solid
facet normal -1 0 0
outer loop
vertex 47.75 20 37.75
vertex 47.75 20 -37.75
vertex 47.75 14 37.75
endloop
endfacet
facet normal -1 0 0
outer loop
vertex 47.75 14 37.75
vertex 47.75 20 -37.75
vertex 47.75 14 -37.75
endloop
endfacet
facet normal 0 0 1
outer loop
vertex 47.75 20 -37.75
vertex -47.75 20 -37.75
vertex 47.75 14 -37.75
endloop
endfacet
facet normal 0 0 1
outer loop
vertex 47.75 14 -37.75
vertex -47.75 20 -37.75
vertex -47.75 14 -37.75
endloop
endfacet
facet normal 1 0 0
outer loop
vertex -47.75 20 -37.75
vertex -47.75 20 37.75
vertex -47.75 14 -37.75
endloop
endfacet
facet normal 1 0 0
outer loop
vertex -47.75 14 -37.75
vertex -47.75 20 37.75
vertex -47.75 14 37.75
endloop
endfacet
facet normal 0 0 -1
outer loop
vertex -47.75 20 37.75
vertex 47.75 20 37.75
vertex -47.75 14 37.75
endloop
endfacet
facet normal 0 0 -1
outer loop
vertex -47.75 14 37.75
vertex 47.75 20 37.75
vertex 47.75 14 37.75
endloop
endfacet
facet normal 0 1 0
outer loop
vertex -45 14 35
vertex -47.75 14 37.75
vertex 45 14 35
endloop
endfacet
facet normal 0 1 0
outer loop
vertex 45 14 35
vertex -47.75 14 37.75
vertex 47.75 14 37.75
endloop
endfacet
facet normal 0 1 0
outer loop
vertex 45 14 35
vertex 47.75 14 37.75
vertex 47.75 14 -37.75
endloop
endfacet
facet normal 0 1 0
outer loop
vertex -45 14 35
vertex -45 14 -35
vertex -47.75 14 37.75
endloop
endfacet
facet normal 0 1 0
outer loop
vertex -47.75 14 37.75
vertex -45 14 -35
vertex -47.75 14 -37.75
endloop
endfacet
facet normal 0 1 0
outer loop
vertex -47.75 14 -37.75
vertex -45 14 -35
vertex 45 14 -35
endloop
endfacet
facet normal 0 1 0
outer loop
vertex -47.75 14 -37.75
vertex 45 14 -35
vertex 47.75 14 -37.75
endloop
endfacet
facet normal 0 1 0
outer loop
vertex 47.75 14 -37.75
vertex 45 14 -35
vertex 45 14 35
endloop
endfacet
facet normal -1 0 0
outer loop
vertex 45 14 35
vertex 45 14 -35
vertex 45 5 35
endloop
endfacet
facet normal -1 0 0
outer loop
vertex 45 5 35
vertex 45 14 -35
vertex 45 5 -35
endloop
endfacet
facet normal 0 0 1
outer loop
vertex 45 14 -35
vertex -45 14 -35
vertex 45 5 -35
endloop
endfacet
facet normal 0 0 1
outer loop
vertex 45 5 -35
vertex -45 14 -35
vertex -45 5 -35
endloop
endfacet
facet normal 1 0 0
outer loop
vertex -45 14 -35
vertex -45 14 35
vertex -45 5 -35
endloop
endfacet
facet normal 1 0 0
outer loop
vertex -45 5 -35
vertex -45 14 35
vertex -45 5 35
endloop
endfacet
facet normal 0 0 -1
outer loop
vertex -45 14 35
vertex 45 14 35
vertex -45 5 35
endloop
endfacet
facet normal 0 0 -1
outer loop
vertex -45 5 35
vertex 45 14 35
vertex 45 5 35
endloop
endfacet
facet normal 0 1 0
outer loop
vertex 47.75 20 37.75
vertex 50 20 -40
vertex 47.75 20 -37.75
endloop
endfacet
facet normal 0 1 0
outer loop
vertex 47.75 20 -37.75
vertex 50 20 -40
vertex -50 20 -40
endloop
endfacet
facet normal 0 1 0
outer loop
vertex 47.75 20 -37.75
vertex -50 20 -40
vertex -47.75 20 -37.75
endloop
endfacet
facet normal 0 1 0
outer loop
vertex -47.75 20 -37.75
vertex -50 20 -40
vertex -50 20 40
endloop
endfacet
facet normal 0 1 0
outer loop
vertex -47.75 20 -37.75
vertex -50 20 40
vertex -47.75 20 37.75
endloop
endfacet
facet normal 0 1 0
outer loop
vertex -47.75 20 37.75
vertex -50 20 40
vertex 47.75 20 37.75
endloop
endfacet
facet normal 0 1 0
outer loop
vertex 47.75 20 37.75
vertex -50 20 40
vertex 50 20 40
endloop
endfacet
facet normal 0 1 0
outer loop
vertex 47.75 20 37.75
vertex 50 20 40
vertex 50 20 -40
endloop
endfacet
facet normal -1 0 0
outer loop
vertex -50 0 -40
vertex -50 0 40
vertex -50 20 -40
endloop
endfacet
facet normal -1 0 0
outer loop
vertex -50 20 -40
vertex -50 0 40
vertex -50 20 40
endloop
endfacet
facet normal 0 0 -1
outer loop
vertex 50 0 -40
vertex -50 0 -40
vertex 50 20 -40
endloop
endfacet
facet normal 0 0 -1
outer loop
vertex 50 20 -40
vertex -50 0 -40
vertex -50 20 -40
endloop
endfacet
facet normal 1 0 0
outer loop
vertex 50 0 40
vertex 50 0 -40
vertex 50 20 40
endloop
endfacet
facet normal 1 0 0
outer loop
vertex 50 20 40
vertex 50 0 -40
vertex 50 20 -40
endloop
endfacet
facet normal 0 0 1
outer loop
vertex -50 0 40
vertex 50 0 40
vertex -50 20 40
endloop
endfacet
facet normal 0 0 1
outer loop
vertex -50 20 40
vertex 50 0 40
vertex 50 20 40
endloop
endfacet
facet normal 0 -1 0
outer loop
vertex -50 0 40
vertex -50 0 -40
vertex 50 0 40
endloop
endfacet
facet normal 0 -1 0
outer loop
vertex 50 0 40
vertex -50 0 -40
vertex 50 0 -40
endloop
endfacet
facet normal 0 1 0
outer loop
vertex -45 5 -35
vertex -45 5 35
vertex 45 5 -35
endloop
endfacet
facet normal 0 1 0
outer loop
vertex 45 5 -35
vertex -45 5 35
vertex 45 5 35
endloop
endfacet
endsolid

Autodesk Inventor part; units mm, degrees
ref_plane "YZ Plane" through (0, 0, 0) normal (1, 0, 0) x (0, 1, 0)
ref_plane "XZ Plane" through (0, 0, 0) normal (0, 1, 0) x (-1, 0, 0)
ref_plane "XY Plane" through (0, 0, 0) normal (0, 0, 1) x (1, 0, 0)
sketch "Skizze1" plane through (0, 0, 0) normal (0, 1, 0) x (-1, 0, 0)
  line L0 (-50, 40) -> (50, 40)
  line L1 (50, 40) -> (50, -40)
  line L2 (50, -40) -> (-50, -40)
  line L3 (-50, -40) -> (-50, 40)
  line L4 (-50, 40) -> (50, -40) construction
  line L5 (50, 40) -> (-50, -40) construction
  point P0 (0, 0)
  dimension "d0" = 100
  dimension "d1" = 80
extrude "Extrusion1" add sketch "Skizze1" along normal blind 5
sketch "Skizze2" plane through (0, 5, 0) normal (0, 1, 0) x (1, 0, 0)
  line L0 (-50, -40) -> (50, -40) projected
  line L1 (50, -40) -> (50, 40) projected
  line L2 (50, 40) -> (-50, 40) projected
  line L3 (-50, 40) -> (-50, -40) projected
  line L4 (-45, -35) -> (45, -35)
  line L5 (45, -35) -> (45, 35)
  line L6 (45, 35) -> (-45, 35)
  line L7 (-45, 35) -> (-45, -35)
  line L8 (-45, -35) -> (45, 35) construction
  line L9 (45, -35) -> (-45, 35) construction
  point P0 (0, 0)
  dimension "d4" = 90
  dimension "d5" = 70
extrude "Extrusion2" add sketch "Skizze2" along normal blind 15
sketch "Skizze3" plane through (0, 20, 0) normal (0, 1, 0) x (1, 0, 0)
  line L0 (47.75, -37.75) -> (-47.75, -37.75)
  line L1 (-47.75, -37.75) -> (-47.75, 37.75)
  line L2 (-47.75, 37.75) -> (47.75, 37.75)
  line L3 (47.75, 37.75) -> (47.75, -37.75)
  line L4 (47.75, -37.75) -> (-47.75, 37.75) construction
  line L5 (-47.75, -37.75) -> (47.75, 37.75) construction
  line L6 (-45, 35) -> (-45, -35) projected
  line L7 (-45, -35) -> (45, -35) projected
  line L8 (45, -35) -> (45, 35) projected
  line L9 (45, 35) -> (-45, 35) projected
  point P0 (0, 0)
  dimension "d8" = 95.5
  dimension "d9" = 75.5
extrude "Extrusion3" cut sketch "Skizze3" against normal blind 6
properties part number "bottom"
